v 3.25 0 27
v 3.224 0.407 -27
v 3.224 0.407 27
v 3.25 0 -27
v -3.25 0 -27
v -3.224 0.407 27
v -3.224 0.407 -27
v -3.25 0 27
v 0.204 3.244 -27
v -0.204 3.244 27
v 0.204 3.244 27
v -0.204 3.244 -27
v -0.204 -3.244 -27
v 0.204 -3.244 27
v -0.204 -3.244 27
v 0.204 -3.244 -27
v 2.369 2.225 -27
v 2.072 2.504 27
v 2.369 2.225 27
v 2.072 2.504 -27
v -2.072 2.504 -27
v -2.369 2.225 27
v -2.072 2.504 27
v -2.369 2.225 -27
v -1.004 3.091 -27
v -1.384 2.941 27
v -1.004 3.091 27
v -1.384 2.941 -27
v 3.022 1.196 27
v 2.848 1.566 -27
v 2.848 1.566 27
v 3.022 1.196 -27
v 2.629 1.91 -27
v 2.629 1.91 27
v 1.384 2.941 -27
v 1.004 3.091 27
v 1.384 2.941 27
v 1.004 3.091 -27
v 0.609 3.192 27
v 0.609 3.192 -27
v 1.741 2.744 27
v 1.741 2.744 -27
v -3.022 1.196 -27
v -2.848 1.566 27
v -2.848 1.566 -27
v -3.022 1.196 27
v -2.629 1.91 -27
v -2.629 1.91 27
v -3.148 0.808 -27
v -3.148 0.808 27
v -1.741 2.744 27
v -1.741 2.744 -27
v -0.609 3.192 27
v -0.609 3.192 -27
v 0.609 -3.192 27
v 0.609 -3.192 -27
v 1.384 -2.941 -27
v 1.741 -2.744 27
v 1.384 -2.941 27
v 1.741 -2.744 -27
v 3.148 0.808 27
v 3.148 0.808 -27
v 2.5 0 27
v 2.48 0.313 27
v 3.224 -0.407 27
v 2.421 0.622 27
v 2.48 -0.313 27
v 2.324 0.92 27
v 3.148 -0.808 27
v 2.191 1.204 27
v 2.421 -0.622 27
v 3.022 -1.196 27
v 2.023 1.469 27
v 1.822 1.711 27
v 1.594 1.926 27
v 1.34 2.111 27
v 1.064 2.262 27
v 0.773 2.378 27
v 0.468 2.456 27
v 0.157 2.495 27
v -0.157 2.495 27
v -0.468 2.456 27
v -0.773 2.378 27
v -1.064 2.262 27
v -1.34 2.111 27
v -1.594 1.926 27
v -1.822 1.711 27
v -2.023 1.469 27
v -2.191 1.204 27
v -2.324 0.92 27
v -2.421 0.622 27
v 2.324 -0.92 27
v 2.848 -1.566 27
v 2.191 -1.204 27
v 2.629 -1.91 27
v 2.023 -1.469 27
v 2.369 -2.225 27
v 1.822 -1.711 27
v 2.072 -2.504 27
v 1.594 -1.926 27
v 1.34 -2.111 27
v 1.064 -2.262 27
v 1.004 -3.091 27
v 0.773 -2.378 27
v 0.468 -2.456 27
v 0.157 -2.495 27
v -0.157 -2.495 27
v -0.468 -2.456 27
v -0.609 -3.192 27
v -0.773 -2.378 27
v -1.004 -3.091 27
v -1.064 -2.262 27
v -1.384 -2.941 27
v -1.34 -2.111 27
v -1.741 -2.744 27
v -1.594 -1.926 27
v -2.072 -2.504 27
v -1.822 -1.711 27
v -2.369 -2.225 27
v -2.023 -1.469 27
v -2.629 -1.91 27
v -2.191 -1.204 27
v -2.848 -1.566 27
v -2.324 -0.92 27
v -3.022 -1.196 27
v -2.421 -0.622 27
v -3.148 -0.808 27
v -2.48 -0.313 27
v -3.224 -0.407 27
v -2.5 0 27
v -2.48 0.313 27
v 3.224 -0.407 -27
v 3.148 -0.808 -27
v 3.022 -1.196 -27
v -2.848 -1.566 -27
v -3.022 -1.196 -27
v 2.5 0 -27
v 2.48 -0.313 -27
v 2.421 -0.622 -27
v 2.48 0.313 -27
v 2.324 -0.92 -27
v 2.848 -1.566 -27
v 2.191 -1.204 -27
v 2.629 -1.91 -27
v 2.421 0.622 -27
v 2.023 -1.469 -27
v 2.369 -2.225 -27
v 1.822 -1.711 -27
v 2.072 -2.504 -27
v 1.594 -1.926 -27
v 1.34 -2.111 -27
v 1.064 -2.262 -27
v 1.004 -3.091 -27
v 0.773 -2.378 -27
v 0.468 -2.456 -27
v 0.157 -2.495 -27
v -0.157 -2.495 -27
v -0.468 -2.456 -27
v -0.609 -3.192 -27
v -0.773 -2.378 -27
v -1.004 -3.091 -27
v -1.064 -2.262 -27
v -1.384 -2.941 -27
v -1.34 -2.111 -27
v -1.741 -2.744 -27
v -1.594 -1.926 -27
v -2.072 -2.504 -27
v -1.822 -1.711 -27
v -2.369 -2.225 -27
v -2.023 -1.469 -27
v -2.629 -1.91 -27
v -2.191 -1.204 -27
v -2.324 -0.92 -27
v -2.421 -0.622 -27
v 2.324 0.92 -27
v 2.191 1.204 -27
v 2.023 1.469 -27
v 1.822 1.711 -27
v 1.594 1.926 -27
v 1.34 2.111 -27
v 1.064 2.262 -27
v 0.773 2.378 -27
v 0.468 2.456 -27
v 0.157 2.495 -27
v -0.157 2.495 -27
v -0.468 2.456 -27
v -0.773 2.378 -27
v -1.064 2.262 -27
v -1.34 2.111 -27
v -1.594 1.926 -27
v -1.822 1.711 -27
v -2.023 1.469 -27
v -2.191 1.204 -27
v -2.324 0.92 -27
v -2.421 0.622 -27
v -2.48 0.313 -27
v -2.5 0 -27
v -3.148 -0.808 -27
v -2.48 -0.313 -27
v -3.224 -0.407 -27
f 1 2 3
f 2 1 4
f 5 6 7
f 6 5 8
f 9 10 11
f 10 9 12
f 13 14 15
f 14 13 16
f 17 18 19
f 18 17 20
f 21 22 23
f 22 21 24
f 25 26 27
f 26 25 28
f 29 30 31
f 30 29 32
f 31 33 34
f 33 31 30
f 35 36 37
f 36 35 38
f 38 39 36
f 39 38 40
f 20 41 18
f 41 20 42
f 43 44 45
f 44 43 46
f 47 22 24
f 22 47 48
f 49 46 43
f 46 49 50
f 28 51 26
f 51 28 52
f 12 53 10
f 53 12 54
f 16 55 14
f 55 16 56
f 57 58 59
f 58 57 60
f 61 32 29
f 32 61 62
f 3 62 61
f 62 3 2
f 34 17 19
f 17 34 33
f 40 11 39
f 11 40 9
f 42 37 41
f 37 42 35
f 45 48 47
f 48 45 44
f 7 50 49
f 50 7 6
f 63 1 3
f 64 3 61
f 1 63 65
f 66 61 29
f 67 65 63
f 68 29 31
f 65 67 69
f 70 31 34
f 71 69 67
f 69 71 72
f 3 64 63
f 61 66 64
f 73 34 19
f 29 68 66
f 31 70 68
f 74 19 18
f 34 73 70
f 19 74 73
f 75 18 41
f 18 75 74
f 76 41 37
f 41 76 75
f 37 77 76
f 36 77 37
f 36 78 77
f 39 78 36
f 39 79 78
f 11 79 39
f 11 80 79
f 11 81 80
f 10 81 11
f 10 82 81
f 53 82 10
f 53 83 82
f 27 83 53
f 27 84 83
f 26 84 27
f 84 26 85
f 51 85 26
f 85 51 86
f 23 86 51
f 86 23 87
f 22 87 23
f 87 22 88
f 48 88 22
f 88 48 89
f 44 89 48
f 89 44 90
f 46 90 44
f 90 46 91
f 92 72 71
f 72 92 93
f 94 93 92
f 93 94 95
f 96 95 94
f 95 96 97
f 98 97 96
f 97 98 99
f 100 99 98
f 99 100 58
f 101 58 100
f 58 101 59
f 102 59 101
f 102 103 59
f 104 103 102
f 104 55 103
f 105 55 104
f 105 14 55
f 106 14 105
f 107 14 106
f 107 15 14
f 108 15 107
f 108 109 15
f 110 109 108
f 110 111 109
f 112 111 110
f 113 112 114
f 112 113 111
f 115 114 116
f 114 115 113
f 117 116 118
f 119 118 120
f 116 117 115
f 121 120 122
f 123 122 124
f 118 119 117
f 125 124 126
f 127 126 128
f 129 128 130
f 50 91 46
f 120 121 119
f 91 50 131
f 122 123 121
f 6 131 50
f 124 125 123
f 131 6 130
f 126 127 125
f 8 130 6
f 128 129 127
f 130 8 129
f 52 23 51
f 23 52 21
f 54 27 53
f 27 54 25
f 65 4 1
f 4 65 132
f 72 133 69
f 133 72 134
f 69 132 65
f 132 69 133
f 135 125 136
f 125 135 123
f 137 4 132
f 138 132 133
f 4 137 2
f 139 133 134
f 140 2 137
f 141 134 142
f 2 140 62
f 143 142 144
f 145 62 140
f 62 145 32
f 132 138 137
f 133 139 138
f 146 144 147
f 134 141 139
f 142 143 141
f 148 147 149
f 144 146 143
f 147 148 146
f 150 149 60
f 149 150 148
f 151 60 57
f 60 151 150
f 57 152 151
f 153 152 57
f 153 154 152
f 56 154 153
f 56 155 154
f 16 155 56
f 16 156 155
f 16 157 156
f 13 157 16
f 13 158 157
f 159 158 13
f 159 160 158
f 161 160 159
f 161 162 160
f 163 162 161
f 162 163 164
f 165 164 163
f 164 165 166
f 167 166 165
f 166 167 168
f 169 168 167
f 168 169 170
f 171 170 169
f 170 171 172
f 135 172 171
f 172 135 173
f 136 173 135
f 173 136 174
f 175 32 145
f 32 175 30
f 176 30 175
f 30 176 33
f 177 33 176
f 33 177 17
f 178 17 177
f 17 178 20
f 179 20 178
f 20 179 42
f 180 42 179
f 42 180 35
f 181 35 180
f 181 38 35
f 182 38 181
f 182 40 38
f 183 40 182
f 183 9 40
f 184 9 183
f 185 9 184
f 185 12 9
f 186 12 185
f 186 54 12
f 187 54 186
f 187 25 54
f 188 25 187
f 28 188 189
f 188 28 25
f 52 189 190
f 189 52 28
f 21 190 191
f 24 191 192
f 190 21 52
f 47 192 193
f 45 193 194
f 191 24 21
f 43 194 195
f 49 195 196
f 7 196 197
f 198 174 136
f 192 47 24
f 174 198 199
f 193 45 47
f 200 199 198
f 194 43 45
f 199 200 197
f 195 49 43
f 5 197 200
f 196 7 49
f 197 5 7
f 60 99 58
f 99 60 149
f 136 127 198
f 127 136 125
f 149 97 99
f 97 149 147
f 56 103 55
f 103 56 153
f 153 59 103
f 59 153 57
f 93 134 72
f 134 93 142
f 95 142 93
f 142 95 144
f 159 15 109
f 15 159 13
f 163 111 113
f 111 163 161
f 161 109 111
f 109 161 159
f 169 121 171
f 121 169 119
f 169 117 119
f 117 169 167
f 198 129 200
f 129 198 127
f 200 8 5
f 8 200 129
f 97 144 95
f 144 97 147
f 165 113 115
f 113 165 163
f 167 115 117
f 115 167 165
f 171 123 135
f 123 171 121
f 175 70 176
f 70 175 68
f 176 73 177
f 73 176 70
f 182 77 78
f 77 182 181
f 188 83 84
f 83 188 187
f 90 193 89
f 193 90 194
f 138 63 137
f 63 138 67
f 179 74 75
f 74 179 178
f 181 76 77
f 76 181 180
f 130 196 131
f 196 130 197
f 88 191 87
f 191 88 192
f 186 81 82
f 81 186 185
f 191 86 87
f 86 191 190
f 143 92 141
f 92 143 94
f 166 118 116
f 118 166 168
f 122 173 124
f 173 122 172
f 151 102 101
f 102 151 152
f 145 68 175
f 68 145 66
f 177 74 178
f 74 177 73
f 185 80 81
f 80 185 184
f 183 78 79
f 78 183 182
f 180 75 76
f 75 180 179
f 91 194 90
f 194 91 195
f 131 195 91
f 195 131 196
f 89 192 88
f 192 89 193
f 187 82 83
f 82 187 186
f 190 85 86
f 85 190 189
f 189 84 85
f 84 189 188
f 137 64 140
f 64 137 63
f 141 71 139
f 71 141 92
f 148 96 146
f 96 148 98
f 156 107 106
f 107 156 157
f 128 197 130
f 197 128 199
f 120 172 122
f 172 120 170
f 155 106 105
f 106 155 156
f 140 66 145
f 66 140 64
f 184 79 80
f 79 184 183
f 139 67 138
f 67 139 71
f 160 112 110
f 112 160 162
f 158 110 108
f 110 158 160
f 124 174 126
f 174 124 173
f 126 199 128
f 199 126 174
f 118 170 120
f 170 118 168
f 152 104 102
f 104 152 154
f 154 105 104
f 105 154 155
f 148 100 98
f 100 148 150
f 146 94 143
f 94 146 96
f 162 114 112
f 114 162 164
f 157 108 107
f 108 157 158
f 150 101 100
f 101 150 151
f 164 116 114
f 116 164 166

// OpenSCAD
$fn = 50;


difference() {
	union() {
		translate(v = [0, 0, -27.0000000000]) {
			cylinder(h = 54, r = 3.2500000000);
		}
	}
	union() {
		translate(v = [0, 0, -100.0000000000]) {
			cylinder(h = 200, r = 2.5000000000);
		}
	}
}
